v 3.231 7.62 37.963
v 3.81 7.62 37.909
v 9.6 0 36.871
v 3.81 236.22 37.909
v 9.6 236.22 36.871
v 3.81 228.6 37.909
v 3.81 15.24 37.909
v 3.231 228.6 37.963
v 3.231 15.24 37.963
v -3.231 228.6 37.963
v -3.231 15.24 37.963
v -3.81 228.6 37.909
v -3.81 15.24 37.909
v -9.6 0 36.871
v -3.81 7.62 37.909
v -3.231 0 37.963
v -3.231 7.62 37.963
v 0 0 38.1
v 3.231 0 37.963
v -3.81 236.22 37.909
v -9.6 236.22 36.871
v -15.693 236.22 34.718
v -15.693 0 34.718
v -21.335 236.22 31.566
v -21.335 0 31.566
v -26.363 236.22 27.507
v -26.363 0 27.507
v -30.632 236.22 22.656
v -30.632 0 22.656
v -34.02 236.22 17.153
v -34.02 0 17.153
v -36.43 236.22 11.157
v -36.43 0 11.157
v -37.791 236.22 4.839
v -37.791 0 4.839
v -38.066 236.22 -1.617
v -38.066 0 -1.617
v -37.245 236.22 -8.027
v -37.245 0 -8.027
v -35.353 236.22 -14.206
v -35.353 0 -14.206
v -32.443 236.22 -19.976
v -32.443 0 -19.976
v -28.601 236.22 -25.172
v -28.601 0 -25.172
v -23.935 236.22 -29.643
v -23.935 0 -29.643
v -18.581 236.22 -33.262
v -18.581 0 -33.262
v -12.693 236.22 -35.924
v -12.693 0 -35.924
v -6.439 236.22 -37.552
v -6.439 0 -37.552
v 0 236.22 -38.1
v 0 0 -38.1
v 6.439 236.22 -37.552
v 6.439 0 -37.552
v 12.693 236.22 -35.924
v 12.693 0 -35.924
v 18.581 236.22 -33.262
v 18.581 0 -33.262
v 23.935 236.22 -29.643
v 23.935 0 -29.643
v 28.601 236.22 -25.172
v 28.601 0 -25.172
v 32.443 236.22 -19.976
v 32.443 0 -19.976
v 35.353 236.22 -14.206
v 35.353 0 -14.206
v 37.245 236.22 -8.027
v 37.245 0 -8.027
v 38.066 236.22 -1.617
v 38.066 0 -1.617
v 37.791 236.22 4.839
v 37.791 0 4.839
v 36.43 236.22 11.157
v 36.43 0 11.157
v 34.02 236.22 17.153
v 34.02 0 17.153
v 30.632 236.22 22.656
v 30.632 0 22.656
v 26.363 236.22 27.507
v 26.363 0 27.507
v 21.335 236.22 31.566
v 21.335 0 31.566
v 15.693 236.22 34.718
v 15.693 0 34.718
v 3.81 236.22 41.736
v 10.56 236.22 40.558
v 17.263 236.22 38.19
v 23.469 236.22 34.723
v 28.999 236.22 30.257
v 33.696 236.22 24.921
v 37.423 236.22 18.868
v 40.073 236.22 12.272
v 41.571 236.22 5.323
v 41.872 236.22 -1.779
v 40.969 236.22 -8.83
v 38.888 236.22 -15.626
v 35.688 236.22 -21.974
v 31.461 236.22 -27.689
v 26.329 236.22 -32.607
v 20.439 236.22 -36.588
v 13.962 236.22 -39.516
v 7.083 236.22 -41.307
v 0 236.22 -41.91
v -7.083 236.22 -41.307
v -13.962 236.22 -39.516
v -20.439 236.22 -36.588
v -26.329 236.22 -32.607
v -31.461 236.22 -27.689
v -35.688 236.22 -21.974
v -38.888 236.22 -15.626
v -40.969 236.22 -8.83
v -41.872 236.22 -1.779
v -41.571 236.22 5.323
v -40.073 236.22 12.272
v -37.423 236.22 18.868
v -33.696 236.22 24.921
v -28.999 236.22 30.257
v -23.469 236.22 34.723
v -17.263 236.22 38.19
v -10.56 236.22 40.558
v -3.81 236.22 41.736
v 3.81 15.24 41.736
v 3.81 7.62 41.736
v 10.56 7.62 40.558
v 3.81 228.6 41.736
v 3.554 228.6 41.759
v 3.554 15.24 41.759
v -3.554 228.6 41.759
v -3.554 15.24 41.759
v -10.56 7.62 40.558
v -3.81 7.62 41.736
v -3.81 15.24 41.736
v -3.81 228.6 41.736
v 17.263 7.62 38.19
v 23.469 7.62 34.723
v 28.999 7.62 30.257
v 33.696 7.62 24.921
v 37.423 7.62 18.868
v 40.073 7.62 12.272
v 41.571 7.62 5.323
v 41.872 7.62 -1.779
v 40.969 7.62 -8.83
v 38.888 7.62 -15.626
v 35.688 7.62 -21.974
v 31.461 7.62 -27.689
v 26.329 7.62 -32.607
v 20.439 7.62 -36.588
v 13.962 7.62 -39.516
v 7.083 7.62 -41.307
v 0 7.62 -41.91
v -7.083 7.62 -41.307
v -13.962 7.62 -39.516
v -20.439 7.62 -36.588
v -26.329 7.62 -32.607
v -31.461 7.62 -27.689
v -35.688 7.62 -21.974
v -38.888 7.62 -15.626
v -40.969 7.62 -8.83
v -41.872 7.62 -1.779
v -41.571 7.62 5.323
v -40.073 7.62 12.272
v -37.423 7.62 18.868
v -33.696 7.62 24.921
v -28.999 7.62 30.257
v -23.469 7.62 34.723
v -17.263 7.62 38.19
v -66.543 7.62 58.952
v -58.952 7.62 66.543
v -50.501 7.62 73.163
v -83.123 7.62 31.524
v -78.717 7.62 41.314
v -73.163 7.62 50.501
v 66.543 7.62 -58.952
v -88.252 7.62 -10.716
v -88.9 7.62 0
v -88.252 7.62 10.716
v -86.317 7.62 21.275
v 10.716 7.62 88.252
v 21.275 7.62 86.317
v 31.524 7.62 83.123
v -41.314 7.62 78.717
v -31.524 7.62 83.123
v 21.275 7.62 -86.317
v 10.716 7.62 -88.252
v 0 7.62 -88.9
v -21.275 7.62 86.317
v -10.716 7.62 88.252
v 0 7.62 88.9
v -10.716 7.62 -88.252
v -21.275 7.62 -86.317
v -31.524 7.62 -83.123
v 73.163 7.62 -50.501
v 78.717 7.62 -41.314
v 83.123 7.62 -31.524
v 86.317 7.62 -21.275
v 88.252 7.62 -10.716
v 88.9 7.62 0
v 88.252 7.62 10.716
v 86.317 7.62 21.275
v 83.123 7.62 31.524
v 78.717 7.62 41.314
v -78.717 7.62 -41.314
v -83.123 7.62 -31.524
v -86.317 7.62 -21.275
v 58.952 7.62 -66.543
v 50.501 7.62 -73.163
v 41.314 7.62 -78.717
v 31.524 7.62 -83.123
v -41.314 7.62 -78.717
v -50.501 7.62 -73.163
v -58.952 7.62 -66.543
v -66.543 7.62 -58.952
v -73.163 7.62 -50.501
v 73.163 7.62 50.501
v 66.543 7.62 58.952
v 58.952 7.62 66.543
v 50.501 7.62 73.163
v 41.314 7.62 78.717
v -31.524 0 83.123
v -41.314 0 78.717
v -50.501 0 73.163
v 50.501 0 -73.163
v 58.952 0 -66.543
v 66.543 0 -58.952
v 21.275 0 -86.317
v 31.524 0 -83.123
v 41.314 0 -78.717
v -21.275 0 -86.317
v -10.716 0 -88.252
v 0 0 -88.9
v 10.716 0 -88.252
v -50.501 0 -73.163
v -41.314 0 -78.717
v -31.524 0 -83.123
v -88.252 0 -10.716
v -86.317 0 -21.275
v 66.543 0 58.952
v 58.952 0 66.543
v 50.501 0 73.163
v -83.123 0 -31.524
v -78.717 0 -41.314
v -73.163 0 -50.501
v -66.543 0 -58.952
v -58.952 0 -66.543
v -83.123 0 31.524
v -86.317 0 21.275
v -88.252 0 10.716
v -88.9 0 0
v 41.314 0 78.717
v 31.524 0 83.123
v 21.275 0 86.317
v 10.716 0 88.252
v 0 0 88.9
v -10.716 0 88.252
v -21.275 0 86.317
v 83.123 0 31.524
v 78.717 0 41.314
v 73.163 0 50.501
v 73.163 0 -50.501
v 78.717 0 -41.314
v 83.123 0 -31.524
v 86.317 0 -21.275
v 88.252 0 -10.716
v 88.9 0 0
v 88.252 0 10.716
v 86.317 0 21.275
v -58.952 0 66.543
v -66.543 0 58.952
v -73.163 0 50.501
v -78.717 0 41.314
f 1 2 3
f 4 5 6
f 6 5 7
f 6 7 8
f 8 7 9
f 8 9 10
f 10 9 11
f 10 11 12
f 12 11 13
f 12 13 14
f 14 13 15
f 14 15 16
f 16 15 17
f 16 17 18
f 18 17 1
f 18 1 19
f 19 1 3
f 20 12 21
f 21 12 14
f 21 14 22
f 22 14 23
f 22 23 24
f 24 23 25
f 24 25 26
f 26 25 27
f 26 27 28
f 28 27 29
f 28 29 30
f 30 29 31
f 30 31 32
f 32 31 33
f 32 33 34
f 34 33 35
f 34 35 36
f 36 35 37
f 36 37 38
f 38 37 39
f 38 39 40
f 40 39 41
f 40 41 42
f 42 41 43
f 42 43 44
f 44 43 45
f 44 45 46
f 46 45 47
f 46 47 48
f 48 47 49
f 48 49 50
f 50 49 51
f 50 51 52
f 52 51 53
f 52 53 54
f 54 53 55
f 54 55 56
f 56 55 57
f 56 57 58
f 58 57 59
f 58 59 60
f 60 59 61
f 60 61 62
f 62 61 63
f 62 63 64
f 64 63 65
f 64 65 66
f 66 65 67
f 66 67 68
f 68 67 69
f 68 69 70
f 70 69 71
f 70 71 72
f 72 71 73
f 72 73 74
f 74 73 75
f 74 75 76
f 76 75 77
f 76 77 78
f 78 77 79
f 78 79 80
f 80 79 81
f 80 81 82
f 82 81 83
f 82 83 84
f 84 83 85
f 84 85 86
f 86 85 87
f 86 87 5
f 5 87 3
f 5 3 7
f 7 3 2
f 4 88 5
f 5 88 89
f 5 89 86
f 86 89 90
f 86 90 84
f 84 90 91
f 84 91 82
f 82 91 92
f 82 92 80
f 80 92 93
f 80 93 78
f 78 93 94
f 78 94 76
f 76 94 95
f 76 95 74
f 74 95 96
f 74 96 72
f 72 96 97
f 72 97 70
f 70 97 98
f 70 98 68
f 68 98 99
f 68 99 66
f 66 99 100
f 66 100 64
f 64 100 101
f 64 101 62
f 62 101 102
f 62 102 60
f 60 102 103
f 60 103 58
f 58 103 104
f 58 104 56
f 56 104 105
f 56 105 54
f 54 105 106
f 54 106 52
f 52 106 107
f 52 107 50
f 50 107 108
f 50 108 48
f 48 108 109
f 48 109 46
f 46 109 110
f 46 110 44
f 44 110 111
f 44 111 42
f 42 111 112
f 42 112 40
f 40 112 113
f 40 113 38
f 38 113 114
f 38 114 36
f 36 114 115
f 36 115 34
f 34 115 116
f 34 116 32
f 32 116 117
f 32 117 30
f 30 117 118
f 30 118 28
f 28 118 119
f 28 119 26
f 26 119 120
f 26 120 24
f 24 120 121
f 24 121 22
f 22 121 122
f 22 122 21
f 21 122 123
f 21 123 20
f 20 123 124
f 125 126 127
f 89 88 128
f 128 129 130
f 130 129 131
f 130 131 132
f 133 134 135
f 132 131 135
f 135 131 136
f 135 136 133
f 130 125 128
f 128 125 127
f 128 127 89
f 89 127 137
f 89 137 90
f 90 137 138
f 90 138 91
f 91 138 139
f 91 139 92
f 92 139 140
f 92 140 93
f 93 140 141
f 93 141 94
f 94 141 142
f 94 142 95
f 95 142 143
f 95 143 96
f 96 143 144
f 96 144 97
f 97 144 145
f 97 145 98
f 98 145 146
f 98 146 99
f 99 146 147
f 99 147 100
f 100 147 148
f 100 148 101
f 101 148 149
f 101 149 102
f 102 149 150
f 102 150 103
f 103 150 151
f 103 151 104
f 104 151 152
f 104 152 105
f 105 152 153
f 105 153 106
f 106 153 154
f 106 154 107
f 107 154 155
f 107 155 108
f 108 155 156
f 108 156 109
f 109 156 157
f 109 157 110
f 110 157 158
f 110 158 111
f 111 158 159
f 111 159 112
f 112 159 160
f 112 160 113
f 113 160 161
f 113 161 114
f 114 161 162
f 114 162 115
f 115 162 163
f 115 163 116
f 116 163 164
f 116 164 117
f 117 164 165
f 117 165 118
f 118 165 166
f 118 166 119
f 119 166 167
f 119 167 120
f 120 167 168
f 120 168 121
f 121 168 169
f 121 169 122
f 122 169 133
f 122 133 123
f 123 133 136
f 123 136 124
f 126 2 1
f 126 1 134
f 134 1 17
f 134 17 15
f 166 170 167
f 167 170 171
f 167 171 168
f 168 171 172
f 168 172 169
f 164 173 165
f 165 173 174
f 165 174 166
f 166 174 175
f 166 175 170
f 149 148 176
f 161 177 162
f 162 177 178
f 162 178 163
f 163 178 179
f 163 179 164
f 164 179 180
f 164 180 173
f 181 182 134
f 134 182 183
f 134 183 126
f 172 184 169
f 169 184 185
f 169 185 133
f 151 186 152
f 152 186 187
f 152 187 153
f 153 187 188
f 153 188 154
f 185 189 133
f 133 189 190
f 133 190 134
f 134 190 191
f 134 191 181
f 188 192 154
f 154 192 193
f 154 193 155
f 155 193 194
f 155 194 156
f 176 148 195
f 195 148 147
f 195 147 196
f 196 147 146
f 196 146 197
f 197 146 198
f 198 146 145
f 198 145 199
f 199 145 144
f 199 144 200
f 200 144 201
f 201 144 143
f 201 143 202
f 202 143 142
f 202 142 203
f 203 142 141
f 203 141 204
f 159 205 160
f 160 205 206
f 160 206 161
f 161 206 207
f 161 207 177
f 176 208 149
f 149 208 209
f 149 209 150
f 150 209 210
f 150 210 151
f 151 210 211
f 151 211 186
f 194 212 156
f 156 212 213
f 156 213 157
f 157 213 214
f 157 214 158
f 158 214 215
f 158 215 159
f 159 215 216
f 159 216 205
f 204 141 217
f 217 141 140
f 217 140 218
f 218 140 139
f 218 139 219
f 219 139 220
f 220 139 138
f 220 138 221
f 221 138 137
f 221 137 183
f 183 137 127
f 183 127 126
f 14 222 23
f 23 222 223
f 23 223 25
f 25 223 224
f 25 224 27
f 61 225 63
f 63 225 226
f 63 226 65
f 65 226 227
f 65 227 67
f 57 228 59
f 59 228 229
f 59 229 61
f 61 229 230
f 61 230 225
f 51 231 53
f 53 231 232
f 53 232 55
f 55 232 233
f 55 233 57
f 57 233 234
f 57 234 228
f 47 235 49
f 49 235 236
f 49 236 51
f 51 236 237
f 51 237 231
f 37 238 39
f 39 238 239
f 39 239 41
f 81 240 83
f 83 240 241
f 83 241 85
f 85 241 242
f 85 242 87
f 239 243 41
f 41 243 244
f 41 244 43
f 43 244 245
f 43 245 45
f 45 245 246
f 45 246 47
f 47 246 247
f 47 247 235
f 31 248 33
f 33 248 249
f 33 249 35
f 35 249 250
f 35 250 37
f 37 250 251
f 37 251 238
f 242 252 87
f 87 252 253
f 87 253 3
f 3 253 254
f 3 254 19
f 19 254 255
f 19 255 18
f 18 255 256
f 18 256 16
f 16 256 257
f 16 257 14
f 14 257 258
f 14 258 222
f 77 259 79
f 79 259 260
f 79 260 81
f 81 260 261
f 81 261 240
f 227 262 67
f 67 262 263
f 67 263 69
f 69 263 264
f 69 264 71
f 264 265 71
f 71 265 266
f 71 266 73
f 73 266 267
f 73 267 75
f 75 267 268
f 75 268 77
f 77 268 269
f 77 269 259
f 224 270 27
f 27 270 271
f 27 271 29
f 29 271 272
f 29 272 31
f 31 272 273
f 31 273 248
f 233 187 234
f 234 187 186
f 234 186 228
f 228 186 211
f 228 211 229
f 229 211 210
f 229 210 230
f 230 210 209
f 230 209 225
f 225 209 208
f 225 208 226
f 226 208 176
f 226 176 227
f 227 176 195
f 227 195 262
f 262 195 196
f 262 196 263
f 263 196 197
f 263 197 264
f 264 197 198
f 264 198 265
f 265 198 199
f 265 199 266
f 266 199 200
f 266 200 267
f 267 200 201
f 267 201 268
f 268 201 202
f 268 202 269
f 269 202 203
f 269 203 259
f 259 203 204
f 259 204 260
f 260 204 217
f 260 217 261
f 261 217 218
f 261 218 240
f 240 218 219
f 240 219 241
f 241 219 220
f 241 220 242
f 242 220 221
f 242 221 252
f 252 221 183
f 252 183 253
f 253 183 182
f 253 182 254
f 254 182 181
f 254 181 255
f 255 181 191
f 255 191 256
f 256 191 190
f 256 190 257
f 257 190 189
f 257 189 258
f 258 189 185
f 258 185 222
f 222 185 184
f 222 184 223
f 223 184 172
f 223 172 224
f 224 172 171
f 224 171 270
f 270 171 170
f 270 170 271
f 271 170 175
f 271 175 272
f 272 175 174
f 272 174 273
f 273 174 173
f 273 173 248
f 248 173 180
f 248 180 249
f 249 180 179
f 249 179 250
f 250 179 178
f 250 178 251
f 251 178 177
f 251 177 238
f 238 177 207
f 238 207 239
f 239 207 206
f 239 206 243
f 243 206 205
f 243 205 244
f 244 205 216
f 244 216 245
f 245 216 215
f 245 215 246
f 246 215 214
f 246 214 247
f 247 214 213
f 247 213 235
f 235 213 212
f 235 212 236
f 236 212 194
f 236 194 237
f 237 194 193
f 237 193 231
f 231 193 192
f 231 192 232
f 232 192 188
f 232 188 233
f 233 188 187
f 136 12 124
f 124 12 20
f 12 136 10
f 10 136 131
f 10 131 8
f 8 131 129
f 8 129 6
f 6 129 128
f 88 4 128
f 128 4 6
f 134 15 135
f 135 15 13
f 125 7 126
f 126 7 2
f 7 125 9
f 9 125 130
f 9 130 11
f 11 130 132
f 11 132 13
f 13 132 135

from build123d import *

# Parameters (mm, degrees)
SKETCH1_R           = 88.9
SKETCH1_R_2         = 38.1
BOSS_EXTRUDE1_DEPTH = 7.62
SKETCH2_R           = 41.91
SKETCH2_R_2         = 38.1
BOSS_EXTRUDE2_DEPTH = 228.6
SKETCH3_W           = 7.62
SKETCH3_H           = 7.62
CUT_EXTRUDE1_DEPTH  = 89.9


with BuildPart() as part:
    # Sketch1 → Boss-Extrude1 (new body)
    with BuildSketch(Plane(origin=(0, 0, 0), x_dir=(1, 0, 0), z_dir=(0, 1, 0))):
        Circle(SKETCH1_R)
        Circle(SKETCH1_R_2, mode=Mode.SUBTRACT)
    extrude(amount=BOSS_EXTRUDE1_DEPTH)

    # Sketch2 → Boss-Extrude2 (add)
    with BuildSketch(Plane(origin=(0, 7.62, 0), x_dir=(1, 0, 0), z_dir=(0, 1, 0))):
        Circle(SKETCH2_R)
        Circle(SKETCH2_R_2, mode=Mode.SUBTRACT)
    extrude(amount=BOSS_EXTRUDE2_DEPTH)

    # Sketch3 → Cut-Extrude1 (cut, through all)
    with BuildSketch(Plane.XY):
        with Locations((0, 11.43)):
            Rectangle(SKETCH3_W, SKETCH3_H)
        with Locations((0, 232.41)):
            Rectangle(SKETCH3_W, SKETCH3_H)
    extrude(amount=CUT_EXTRUDE1_DEPTH, mode=Mode.SUBTRACT)


solid = part.part
